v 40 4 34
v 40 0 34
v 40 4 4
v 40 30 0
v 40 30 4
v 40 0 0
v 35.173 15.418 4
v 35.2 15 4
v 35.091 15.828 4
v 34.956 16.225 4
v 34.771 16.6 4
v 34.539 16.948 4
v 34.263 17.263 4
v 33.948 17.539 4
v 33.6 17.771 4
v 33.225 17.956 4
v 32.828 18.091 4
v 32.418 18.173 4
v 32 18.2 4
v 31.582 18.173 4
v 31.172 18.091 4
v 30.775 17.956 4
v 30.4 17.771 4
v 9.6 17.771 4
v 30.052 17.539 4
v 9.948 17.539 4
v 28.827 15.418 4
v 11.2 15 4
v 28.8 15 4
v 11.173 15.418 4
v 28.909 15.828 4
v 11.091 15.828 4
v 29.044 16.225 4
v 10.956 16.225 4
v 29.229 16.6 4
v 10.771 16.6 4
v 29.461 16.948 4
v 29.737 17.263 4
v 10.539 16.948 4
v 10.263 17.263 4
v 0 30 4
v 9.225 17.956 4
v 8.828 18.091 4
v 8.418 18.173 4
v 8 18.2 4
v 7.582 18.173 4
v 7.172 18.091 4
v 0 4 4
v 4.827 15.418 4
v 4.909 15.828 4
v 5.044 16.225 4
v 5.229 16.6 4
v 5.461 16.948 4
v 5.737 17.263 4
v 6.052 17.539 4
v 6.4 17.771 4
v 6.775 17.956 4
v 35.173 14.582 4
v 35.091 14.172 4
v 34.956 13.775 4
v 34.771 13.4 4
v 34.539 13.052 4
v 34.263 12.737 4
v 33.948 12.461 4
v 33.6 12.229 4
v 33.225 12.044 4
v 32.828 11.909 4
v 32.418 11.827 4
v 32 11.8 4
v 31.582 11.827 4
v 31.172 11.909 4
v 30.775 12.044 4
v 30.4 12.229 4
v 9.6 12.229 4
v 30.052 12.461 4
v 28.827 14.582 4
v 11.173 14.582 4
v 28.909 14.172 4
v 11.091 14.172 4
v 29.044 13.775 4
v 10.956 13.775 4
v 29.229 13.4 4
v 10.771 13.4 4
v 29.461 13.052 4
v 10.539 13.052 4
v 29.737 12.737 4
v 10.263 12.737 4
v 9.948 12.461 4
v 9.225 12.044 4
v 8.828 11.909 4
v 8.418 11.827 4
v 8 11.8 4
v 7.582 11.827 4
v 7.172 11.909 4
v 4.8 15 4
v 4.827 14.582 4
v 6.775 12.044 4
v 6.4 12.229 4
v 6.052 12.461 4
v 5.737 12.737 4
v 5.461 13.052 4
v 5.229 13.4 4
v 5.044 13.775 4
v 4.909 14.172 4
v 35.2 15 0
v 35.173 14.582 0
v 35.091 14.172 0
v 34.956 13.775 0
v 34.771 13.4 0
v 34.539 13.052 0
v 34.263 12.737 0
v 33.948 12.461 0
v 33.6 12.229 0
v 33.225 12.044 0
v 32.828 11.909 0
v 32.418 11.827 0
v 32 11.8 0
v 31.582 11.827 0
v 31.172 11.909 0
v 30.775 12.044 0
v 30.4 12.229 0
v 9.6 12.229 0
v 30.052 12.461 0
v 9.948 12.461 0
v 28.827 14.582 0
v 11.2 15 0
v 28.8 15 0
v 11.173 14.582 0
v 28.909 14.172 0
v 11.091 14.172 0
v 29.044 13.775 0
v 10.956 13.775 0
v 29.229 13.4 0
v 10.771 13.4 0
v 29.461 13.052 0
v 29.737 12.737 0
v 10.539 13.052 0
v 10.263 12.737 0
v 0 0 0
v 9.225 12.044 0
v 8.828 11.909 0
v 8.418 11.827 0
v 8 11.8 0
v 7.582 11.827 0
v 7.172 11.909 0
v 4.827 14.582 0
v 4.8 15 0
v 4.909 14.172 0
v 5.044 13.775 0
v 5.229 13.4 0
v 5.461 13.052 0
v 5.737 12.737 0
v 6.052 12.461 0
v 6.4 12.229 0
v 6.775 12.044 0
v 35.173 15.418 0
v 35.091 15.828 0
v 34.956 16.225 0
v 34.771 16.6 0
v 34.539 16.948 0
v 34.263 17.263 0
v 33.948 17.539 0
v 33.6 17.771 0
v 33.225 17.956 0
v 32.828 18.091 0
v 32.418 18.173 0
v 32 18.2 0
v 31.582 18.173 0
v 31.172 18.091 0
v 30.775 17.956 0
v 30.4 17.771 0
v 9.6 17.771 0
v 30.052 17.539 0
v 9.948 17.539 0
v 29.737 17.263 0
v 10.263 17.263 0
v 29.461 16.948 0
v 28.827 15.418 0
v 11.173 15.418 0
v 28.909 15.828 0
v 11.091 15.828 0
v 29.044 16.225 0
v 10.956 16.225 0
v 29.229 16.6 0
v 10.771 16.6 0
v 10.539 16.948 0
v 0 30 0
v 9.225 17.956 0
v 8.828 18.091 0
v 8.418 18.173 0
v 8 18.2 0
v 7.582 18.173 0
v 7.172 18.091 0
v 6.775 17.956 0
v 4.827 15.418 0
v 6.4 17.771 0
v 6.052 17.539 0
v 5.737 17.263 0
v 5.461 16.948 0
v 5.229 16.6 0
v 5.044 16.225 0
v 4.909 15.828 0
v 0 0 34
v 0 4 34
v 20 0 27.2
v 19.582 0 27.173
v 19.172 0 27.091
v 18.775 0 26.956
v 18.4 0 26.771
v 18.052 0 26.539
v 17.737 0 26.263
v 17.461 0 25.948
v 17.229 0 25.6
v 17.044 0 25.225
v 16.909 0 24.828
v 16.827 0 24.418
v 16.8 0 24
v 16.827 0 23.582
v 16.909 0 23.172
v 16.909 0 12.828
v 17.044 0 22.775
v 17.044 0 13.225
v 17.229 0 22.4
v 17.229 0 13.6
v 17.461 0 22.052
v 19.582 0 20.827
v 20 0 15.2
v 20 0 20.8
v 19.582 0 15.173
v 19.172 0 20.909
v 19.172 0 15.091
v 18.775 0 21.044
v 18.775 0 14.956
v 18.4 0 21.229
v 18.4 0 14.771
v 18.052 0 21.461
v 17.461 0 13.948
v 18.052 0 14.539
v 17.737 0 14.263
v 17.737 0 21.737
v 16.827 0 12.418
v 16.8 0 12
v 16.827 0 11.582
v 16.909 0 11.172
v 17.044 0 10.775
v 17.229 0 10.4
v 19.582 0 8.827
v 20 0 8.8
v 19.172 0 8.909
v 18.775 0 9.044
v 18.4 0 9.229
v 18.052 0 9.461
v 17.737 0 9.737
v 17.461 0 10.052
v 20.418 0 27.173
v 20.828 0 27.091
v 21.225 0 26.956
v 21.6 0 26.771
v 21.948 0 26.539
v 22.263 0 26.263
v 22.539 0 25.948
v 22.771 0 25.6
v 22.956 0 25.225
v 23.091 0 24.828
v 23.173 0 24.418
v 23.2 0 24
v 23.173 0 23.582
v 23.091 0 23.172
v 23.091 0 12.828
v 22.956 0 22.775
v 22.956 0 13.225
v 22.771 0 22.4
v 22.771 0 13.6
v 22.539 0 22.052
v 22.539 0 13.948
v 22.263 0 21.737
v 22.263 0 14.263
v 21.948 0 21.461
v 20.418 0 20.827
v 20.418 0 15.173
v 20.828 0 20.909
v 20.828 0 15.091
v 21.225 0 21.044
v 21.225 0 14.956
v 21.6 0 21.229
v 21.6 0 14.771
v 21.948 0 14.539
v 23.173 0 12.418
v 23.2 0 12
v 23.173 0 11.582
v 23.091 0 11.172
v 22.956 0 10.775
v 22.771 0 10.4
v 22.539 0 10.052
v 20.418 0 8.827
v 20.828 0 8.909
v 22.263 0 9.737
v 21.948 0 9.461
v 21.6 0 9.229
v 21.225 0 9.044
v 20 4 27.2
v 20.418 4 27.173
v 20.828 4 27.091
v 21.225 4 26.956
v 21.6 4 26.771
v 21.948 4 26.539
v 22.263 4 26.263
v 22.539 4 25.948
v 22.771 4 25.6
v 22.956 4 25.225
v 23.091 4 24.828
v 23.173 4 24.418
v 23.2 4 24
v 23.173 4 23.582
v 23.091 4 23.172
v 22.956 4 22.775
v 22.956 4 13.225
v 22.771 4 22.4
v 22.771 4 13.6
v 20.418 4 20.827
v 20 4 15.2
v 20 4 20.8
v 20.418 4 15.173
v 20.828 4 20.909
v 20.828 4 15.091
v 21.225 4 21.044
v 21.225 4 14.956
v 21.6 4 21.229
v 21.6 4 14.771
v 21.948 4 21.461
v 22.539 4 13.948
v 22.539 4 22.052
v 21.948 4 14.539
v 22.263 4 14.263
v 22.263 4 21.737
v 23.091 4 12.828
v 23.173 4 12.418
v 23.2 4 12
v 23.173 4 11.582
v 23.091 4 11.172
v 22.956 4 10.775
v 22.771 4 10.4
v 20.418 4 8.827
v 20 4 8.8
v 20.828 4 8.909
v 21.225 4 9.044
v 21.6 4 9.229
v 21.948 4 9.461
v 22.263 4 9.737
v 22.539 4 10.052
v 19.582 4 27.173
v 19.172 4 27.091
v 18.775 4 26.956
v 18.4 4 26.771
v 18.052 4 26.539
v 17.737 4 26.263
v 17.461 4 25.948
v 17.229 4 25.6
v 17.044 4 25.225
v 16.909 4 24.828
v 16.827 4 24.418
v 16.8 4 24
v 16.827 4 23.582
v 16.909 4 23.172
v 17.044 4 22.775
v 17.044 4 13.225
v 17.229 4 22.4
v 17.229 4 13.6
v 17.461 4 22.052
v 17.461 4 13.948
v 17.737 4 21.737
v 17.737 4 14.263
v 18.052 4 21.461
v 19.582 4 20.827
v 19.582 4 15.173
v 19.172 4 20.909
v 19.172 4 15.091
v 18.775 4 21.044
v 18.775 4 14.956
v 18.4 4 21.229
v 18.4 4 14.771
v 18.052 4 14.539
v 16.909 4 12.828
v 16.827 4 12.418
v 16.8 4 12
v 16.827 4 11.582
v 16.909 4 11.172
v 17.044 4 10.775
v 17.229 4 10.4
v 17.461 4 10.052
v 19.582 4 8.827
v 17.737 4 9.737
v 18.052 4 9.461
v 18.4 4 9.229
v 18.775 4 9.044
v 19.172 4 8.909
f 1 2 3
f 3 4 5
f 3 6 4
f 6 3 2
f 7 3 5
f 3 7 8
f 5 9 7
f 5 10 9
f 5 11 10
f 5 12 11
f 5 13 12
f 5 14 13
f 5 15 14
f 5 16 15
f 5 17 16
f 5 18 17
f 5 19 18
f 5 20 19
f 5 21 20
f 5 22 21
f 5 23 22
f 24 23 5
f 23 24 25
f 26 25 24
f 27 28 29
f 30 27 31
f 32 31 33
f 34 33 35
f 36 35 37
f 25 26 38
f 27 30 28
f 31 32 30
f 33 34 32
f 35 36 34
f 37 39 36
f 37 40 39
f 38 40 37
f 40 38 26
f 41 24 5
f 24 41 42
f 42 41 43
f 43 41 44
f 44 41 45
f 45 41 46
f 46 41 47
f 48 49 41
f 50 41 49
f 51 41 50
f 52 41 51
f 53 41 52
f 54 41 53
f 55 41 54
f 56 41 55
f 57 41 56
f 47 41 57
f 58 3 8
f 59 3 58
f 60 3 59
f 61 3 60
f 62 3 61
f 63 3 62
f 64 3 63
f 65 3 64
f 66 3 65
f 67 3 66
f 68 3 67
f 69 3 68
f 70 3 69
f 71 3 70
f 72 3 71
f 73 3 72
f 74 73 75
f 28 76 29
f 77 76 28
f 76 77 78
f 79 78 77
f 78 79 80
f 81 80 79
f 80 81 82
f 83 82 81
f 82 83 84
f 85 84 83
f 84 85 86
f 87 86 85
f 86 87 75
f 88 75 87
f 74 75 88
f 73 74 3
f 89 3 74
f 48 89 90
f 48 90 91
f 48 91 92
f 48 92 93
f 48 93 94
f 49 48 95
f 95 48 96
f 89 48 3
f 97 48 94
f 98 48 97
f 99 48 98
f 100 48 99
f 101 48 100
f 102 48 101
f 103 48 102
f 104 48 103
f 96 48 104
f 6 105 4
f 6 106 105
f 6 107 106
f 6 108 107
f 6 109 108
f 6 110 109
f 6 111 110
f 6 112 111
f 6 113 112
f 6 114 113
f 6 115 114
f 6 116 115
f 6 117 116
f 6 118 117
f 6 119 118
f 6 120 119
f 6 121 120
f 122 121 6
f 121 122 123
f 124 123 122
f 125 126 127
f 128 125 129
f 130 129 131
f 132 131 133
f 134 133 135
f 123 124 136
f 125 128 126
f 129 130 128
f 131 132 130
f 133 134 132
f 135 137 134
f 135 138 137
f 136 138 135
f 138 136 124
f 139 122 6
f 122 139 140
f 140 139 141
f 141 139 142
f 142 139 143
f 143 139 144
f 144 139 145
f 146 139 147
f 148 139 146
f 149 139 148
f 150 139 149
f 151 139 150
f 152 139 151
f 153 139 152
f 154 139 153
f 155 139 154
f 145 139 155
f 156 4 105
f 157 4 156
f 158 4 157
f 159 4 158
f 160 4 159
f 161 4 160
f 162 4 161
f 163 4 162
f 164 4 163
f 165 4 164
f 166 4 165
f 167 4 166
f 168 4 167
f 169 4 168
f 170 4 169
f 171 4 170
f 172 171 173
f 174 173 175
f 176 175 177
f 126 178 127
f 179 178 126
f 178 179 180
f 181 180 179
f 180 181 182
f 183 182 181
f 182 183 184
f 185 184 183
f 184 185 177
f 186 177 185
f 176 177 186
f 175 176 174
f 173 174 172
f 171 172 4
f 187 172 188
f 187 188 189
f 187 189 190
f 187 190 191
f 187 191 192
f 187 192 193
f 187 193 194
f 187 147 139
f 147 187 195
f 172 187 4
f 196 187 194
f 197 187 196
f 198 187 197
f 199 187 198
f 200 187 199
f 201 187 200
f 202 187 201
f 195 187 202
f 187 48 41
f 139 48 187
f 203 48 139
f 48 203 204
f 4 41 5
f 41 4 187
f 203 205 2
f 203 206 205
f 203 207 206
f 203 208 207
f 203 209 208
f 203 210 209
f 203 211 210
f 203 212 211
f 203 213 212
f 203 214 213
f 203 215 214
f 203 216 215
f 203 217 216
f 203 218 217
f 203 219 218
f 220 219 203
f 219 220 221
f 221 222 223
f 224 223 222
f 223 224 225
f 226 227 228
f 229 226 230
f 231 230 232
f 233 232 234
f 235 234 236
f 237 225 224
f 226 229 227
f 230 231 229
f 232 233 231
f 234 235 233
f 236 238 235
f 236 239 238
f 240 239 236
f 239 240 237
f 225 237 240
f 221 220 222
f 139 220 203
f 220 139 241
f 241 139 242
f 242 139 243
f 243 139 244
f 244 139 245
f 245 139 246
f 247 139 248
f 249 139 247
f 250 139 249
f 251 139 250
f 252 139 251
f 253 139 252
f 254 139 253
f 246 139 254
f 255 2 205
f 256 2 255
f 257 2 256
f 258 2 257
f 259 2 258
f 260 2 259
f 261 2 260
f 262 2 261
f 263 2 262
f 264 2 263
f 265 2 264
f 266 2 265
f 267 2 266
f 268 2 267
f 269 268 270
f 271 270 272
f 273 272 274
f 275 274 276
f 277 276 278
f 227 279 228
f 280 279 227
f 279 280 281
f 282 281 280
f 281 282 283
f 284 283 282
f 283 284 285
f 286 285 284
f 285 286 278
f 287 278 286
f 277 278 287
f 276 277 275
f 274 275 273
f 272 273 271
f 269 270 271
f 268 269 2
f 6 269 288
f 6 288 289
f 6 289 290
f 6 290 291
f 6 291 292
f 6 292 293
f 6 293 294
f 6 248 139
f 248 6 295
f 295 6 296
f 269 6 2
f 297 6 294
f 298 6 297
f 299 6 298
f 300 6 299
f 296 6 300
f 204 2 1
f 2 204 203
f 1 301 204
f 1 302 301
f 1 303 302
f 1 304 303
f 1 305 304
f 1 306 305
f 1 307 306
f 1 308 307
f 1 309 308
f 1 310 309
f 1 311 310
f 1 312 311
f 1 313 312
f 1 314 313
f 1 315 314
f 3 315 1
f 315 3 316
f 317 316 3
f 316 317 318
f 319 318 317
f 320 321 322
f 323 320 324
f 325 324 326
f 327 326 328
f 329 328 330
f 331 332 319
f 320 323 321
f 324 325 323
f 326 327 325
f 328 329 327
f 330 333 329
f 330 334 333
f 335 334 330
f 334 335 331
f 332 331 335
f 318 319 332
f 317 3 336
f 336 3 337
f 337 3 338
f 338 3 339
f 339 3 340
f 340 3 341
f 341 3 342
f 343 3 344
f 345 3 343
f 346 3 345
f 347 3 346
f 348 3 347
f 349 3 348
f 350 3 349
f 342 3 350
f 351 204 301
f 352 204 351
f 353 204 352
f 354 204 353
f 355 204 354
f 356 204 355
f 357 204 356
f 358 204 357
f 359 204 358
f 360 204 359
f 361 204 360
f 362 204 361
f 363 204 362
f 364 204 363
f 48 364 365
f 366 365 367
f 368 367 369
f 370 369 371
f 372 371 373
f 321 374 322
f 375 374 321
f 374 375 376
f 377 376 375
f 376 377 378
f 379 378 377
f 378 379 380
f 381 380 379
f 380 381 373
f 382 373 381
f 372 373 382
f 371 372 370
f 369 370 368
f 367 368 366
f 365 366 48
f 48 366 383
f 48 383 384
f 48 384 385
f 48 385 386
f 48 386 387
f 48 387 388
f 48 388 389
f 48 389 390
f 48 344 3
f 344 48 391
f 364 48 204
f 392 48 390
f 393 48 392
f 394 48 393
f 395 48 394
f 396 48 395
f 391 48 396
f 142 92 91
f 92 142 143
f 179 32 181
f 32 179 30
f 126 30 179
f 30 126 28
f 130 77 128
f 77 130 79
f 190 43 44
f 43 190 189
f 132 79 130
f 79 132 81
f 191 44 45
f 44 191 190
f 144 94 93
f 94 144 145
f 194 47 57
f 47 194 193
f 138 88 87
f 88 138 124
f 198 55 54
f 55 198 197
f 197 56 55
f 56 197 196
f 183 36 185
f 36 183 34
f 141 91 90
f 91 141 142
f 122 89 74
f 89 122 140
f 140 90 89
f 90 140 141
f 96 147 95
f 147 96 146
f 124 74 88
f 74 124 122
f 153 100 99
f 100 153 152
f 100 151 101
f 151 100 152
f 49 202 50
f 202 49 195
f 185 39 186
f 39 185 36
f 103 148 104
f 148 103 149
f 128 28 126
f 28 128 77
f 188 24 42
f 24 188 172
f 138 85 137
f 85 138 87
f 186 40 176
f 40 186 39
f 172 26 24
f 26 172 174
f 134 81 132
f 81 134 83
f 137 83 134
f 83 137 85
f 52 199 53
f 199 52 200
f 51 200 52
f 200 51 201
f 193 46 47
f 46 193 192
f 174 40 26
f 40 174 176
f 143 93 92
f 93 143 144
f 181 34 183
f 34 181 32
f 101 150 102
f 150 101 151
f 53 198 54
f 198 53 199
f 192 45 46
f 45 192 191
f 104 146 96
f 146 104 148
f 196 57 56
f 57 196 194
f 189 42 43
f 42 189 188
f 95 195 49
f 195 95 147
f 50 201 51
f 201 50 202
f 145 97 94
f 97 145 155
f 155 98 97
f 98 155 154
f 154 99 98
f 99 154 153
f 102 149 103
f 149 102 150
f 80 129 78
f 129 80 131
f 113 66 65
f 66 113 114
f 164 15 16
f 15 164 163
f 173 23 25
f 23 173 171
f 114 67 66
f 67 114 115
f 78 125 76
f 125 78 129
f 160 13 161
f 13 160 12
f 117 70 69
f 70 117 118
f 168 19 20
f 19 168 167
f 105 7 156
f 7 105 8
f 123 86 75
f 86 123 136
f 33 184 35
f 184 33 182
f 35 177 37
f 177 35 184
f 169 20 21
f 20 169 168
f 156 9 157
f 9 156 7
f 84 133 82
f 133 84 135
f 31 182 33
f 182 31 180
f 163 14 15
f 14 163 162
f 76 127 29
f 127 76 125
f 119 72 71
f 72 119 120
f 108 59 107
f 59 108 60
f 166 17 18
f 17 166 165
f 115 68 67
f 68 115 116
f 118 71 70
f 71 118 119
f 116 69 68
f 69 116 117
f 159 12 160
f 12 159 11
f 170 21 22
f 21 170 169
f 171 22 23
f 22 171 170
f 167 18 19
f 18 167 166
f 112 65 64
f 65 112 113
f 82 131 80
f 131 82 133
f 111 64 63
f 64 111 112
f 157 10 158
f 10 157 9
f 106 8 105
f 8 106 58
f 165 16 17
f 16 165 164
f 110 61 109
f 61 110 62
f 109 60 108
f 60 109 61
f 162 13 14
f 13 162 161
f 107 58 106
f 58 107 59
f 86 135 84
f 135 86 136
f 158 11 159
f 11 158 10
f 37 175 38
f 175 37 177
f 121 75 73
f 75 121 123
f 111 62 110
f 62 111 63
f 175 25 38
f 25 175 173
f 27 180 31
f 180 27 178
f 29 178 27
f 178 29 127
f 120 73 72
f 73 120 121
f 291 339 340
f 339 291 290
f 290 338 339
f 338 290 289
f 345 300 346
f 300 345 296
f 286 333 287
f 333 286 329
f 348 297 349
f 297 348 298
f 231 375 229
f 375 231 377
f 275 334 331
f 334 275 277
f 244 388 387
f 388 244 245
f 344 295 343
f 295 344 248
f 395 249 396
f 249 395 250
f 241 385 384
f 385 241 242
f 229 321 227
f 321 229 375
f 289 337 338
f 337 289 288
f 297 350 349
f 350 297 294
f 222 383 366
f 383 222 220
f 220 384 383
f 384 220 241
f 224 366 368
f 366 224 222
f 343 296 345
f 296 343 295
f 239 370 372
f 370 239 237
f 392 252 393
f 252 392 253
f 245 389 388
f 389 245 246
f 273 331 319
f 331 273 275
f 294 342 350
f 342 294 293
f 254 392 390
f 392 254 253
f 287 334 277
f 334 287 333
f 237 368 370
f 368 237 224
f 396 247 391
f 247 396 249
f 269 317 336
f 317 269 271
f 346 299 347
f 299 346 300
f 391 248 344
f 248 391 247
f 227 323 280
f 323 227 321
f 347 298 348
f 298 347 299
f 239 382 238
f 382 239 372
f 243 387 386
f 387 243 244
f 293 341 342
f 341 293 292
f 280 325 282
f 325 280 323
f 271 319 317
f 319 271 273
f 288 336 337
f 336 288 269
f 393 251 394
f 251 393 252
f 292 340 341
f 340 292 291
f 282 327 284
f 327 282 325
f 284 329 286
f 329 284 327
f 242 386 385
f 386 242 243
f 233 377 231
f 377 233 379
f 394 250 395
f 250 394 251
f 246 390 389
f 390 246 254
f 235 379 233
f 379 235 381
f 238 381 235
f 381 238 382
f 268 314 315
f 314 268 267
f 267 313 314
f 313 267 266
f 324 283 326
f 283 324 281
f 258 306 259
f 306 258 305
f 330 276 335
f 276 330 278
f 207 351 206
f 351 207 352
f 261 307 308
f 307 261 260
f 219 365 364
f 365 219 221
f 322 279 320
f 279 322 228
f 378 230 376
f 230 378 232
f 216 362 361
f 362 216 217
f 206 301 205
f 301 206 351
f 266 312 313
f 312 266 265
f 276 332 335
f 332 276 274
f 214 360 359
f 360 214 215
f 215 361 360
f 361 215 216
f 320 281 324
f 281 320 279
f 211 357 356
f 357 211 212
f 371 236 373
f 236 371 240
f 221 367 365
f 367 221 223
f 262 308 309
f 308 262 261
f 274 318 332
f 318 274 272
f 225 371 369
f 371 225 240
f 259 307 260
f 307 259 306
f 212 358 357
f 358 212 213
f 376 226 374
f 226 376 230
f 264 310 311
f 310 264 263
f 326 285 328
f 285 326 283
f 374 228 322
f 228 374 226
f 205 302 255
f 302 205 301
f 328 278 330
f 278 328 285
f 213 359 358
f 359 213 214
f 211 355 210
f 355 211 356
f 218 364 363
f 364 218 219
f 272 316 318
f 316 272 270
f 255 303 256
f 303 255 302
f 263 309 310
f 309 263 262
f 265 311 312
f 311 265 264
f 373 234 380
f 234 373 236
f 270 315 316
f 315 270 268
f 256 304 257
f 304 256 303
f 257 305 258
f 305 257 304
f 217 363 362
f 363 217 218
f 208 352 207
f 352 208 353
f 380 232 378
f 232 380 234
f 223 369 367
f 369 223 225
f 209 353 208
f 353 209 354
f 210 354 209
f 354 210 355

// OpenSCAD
// Parametric L-bracket demo
w = 40; d = 30; h = 4; arm = 30; hole = 3.2;
difference() {
  union() {
    cube([w, d, h]);
    translate([0, 0, h]) cube([w, h, arm]);
  }
  // base holes
  for (x = [8, w-8]) translate([x, d/2, -1]) cylinder(h=h+2, r=hole, $fn=48);
  // wall holes
  for (z = [h+8, h+20]) translate([w/2, -1, z]) rotate([-90,0,0]) cylinder(h=h+2, r=hole, $fn=48);
  // fillet-ish chamfer on outer edge
  translate([w, d, h+arm]) rotate([0,45,0]) cube([12, d+1, arm]);
}
